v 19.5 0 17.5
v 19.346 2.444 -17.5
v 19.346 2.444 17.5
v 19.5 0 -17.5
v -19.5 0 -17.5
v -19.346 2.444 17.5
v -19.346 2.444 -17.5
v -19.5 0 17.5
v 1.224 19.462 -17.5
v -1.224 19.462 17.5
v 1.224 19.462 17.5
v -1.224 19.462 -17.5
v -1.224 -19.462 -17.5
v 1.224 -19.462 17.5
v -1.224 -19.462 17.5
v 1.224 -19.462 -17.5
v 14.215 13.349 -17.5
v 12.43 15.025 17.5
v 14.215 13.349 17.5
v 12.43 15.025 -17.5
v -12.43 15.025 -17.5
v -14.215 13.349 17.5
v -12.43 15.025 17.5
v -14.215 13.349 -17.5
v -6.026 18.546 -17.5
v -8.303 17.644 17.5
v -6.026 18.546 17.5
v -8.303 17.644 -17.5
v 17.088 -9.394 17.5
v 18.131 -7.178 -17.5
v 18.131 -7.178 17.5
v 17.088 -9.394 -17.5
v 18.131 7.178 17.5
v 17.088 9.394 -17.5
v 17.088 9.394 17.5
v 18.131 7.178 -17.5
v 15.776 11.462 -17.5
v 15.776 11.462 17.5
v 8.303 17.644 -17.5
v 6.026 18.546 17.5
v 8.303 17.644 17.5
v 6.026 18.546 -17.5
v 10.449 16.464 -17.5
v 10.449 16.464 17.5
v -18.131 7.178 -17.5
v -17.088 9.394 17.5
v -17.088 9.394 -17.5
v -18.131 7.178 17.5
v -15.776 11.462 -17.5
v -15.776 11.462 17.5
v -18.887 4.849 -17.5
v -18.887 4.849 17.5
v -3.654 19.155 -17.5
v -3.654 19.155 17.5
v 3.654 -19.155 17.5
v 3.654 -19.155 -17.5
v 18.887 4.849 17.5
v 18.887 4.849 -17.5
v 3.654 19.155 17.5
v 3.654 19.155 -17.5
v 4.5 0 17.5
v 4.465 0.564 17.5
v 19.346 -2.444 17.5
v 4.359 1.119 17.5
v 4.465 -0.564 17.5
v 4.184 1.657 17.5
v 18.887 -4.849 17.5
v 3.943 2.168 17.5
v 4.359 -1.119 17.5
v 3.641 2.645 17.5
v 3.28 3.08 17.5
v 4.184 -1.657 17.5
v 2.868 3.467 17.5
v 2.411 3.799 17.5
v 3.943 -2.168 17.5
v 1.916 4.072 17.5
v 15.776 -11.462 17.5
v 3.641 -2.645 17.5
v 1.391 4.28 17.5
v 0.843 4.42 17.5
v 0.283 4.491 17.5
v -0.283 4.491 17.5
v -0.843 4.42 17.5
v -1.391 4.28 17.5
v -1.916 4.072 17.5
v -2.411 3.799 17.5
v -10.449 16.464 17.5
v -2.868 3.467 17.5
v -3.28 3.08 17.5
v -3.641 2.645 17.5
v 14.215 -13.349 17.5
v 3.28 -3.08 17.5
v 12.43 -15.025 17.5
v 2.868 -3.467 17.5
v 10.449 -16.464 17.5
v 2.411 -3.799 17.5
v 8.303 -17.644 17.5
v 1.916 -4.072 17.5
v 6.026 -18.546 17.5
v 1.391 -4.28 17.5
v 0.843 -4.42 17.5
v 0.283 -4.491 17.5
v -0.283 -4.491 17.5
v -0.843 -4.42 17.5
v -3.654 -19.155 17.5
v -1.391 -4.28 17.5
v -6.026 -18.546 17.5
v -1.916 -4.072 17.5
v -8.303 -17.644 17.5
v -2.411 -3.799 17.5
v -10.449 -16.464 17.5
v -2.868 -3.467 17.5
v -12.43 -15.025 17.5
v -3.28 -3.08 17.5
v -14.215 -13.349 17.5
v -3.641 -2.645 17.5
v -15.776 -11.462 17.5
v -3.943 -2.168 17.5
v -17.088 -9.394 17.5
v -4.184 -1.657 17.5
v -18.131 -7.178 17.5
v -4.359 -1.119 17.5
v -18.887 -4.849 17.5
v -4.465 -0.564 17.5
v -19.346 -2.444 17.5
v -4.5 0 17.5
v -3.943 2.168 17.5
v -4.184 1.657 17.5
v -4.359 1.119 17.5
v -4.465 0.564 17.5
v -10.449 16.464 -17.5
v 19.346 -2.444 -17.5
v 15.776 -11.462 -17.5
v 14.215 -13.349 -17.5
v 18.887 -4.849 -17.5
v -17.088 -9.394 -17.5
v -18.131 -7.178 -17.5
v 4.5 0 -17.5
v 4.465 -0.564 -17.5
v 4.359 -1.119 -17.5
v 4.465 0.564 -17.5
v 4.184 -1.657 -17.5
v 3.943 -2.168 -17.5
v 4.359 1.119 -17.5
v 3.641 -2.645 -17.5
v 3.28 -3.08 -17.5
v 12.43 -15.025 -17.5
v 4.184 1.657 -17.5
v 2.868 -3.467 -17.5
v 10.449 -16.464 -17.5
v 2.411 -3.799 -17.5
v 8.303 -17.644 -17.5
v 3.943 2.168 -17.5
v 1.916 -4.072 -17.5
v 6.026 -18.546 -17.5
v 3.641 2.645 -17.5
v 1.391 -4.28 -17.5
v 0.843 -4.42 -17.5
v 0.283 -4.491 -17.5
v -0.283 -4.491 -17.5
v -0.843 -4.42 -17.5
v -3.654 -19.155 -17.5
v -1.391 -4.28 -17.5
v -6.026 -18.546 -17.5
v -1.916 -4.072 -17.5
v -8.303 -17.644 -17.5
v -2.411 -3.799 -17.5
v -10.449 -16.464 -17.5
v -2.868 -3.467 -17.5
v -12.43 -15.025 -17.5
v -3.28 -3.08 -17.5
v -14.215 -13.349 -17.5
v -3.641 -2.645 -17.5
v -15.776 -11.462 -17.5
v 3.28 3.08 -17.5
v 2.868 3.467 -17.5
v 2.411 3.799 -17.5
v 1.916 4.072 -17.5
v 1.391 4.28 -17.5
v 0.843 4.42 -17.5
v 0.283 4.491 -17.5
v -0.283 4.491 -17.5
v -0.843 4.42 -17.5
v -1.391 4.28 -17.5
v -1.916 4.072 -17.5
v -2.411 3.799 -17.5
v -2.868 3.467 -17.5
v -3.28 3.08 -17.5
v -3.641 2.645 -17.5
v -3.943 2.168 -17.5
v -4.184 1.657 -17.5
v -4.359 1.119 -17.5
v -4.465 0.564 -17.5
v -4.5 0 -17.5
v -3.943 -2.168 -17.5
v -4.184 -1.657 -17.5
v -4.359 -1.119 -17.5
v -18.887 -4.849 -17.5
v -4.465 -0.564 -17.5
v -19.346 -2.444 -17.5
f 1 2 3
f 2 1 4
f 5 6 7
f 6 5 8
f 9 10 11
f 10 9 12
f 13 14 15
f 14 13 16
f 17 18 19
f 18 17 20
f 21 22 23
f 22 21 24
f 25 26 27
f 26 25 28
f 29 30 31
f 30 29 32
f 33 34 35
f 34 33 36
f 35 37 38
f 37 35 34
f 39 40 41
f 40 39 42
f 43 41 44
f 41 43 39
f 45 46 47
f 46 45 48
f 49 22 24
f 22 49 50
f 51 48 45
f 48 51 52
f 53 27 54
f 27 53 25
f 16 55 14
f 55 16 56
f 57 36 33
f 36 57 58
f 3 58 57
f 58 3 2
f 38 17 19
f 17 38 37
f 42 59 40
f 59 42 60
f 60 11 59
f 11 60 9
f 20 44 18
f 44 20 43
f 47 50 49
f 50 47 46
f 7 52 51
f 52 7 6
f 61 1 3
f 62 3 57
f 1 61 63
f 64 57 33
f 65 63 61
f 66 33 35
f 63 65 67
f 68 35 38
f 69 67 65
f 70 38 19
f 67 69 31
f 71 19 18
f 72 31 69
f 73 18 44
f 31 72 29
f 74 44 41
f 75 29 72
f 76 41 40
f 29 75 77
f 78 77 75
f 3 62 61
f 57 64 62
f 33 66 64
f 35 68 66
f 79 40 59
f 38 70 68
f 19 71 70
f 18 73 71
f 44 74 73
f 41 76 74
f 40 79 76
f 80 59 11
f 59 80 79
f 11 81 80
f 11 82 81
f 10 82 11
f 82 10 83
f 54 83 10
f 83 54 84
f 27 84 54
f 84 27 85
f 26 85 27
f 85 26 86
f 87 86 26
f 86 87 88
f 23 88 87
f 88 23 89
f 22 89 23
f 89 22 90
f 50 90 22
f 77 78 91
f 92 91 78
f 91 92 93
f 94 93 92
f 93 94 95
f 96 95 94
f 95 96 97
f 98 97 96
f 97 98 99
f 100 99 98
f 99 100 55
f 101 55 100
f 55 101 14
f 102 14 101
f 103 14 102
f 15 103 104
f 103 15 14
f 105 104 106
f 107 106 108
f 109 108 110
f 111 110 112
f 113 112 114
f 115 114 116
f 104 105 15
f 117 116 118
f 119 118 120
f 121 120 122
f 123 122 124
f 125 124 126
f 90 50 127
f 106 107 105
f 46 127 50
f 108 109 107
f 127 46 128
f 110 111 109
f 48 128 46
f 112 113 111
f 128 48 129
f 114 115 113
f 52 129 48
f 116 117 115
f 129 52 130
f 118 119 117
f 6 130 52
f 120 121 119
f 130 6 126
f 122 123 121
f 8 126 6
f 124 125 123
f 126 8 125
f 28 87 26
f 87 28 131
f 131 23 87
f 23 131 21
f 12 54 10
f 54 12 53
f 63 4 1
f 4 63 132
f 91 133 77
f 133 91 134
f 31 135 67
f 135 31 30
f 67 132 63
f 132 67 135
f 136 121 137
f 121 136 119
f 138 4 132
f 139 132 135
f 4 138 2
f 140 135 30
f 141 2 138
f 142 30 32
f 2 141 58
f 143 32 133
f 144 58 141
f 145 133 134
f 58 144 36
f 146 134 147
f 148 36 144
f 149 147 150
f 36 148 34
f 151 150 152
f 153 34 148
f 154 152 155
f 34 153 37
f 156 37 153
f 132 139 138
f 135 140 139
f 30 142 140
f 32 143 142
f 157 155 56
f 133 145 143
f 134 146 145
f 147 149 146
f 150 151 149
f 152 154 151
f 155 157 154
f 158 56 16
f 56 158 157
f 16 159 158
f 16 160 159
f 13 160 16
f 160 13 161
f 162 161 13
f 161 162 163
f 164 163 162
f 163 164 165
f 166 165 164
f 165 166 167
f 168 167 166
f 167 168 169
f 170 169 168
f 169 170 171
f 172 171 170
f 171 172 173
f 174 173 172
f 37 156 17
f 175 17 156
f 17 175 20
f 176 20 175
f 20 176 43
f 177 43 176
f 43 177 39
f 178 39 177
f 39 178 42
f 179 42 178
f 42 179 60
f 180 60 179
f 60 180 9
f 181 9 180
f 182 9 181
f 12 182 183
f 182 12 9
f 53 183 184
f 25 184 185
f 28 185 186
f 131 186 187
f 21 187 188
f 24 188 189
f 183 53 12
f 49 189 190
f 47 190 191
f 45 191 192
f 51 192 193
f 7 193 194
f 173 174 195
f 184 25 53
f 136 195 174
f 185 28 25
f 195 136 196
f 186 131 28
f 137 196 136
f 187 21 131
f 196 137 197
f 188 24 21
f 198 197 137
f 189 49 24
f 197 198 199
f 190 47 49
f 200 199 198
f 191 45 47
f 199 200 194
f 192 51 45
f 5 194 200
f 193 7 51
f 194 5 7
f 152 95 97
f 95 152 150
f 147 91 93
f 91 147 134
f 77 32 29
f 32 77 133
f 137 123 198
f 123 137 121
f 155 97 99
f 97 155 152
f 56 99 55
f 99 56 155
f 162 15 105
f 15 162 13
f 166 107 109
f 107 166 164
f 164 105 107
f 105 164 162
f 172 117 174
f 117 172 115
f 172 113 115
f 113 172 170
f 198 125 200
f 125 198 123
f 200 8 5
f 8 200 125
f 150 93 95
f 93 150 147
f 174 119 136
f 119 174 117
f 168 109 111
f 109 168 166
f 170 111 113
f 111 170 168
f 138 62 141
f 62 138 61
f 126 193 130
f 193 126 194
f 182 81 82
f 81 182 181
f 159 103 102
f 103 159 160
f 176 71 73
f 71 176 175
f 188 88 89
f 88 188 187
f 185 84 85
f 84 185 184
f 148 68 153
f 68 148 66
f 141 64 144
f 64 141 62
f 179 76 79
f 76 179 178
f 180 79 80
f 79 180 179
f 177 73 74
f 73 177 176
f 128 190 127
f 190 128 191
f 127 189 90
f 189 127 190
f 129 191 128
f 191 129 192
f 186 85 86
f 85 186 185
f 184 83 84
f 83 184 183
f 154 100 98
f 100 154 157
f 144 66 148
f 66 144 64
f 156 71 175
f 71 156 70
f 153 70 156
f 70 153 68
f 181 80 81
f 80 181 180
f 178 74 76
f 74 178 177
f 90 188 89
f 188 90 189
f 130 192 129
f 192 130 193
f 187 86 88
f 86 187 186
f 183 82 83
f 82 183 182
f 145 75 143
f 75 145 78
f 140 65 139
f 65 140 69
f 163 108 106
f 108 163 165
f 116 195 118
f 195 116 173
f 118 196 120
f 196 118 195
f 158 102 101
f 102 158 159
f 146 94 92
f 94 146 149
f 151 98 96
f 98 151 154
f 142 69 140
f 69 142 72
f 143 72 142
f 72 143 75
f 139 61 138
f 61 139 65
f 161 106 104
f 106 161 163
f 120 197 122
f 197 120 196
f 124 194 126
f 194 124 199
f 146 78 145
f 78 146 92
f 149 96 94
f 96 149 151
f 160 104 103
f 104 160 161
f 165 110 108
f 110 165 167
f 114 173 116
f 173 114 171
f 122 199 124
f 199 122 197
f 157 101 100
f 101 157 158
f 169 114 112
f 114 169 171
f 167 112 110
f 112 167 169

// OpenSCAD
$fn = 50;


difference() {
	union() {
		translate(v = [0, 0, -17.5000000000]) {
			cylinder(h = 35, r = 19.5000000000);
		}
	}
	union() {
		translate(v = [0, 0, -100.0000000000]) {
			cylinder(h = 200, r = 4.5000000000);
		}
	}
}
